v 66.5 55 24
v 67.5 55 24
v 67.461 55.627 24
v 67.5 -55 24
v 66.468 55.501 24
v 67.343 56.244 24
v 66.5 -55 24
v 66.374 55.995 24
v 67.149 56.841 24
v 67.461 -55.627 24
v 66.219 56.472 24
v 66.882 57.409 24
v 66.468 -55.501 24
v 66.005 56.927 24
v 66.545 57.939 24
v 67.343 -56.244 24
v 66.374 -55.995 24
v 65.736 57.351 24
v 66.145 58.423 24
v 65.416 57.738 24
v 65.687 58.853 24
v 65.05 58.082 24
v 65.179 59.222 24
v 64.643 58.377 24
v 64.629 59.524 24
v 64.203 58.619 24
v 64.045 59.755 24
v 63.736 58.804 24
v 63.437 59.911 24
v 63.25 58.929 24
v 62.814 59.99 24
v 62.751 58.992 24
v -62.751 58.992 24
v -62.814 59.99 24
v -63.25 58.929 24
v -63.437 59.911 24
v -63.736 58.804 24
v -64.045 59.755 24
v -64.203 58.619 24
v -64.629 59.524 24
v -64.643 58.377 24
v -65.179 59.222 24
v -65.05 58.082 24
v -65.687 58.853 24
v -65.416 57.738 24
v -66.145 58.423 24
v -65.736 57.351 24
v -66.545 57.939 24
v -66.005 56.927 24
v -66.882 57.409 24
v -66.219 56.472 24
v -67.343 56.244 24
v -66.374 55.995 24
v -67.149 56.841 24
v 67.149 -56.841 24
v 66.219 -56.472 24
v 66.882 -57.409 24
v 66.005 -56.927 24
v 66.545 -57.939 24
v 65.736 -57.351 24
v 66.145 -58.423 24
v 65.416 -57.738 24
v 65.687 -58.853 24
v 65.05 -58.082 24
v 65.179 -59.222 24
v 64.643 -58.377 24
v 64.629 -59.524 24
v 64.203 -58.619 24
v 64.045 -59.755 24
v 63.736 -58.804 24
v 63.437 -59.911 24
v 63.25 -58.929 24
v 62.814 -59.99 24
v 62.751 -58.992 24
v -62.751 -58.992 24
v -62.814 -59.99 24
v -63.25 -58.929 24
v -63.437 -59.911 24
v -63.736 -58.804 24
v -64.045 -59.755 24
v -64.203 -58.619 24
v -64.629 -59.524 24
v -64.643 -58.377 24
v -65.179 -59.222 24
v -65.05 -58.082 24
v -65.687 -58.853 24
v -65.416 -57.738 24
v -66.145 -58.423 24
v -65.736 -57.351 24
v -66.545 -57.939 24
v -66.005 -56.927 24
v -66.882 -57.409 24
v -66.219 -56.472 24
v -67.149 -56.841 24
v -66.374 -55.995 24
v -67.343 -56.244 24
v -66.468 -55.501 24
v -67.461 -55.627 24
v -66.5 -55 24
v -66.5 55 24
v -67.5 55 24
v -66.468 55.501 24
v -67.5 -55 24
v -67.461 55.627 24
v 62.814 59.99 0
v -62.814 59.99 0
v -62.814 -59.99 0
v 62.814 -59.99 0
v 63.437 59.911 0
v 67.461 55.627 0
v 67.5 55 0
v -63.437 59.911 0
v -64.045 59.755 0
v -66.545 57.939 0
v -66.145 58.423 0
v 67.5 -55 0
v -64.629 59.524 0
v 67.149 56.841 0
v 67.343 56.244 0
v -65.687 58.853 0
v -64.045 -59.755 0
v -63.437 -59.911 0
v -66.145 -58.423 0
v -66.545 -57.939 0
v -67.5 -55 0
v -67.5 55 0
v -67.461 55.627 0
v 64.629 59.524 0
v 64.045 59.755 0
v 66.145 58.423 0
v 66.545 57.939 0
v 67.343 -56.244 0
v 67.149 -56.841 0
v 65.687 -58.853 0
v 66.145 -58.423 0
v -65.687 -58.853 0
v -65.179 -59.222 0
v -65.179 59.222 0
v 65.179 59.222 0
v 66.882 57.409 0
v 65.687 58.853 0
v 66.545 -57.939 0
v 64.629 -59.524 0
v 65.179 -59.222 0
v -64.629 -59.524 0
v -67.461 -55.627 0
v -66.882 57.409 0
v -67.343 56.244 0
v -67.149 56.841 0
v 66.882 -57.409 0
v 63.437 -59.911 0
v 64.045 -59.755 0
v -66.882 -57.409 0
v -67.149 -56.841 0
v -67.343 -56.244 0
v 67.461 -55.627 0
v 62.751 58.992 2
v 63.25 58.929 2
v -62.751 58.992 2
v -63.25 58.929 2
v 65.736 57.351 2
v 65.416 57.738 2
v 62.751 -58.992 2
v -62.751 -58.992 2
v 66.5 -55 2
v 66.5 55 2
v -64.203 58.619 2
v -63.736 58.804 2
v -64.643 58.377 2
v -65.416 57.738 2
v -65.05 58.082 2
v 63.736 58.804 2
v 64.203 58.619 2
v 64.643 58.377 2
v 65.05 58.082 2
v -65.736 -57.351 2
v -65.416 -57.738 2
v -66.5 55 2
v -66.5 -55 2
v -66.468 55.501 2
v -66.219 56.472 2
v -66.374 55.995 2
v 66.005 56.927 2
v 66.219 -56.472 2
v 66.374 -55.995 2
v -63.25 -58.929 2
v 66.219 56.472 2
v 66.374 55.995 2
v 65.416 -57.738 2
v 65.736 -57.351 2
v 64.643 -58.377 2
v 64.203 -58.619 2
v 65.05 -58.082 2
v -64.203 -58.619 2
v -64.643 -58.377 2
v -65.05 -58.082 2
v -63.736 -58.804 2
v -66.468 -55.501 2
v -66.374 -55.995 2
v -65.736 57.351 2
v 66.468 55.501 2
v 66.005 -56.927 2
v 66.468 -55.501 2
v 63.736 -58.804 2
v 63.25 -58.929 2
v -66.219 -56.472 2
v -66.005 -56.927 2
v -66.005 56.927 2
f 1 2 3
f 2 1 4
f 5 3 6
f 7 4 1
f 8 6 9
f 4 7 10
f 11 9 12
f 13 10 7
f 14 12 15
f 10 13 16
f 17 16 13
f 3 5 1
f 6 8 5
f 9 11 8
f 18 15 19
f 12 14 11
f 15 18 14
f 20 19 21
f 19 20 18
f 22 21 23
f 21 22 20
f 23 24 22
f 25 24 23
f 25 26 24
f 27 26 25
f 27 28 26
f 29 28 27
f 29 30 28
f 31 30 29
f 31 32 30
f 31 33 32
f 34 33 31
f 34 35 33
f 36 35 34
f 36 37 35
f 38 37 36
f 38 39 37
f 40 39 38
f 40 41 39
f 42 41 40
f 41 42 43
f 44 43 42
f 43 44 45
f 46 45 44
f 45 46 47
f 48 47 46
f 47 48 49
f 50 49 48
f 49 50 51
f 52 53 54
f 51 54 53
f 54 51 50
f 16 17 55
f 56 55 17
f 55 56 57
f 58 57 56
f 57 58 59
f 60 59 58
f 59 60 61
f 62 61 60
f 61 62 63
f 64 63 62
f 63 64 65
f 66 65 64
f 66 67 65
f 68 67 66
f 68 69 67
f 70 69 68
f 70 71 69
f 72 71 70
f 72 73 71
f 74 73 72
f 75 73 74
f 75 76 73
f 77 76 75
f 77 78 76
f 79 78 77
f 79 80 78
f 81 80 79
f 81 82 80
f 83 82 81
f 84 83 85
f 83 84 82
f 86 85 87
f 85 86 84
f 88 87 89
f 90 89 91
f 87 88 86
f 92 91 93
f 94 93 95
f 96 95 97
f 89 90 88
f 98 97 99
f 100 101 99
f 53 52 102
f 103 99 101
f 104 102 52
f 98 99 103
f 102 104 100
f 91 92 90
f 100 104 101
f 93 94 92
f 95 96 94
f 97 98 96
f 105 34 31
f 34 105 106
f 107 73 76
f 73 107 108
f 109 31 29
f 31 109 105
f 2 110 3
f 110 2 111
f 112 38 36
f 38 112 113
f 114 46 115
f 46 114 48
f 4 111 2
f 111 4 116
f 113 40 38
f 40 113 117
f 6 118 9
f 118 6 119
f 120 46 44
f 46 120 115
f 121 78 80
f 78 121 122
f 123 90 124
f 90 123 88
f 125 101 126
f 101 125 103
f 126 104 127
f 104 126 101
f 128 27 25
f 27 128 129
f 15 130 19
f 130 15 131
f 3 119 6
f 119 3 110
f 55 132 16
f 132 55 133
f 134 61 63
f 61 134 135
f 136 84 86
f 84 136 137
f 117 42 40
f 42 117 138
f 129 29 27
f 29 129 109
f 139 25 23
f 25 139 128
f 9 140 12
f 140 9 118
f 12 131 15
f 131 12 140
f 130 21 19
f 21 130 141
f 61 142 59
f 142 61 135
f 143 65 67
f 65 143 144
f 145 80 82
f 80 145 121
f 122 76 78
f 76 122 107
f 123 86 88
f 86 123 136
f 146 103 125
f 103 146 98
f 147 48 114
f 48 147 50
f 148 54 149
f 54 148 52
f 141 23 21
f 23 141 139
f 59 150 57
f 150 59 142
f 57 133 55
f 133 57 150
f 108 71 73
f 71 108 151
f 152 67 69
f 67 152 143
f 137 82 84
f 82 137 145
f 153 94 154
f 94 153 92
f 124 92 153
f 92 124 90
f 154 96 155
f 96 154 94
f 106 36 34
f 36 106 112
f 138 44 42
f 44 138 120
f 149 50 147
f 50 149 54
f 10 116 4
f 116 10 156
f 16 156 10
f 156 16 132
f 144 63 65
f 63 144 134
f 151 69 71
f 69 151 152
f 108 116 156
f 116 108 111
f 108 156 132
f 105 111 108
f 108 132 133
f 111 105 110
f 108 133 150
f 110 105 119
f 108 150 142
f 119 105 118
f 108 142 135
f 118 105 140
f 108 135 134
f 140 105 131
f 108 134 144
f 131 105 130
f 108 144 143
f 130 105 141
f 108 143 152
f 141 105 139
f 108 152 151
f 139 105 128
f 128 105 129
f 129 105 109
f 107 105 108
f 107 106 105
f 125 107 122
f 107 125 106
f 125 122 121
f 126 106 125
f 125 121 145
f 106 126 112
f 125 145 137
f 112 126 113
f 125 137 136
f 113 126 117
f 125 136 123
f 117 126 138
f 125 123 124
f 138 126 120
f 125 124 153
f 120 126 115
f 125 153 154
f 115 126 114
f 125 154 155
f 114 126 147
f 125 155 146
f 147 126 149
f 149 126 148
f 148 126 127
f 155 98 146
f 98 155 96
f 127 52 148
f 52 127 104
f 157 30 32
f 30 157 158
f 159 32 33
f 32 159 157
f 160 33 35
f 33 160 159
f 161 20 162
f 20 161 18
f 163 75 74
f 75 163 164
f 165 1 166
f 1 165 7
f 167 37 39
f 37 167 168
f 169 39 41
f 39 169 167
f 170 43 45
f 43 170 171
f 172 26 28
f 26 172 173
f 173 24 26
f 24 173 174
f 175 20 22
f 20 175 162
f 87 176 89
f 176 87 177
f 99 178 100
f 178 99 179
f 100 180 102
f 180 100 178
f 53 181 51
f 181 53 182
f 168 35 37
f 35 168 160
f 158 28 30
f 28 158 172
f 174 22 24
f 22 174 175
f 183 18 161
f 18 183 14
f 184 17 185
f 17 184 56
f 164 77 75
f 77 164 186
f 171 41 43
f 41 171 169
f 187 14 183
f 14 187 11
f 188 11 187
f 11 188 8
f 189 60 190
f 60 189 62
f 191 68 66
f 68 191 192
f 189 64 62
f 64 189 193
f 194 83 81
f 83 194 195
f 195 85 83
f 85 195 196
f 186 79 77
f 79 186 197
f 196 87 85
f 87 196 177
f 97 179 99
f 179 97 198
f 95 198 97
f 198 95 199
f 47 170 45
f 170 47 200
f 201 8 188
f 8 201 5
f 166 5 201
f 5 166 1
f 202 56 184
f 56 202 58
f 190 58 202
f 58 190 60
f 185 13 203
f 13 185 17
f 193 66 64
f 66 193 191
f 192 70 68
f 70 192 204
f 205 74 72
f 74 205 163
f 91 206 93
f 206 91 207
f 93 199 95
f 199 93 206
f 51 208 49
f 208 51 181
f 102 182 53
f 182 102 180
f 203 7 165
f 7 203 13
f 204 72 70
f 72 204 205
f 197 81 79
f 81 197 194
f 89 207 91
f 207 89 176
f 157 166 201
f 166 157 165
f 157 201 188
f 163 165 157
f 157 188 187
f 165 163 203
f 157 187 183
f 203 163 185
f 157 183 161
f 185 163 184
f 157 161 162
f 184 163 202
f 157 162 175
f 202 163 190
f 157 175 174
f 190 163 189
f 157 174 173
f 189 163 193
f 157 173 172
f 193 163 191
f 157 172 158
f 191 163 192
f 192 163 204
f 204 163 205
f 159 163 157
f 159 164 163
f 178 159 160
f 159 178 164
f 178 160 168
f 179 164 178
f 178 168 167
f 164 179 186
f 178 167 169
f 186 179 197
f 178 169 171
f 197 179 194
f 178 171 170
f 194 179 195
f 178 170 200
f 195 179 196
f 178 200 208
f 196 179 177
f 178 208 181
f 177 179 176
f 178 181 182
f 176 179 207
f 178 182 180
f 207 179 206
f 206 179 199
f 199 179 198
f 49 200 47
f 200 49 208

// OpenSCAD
$fn = 50;


difference() {
	union() {
		hull() {
			translate(v = [-62.5000000000, 55.0000000000, 0]) {
				cylinder(h = 24, r = 5);
			}
			translate(v = [62.5000000000, 55.0000000000, 0]) {
				cylinder(h = 24, r = 5);
			}
			translate(v = [-62.5000000000, -55.0000000000, 0]) {
				cylinder(h = 24, r = 5);
			}
			translate(v = [62.5000000000, -55.0000000000, 0]) {
				cylinder(h = 24, r = 5);
			}
		}
	}
	union() {
		translate(v = [0, 0, 2]) {
			hull() {
				translate(v = [-62.5000000000, 55.0000000000, 0]) {
					cylinder(h = 22, r = 4);
				}
				translate(v = [62.5000000000, 55.0000000000, 0]) {
					cylinder(h = 22, r = 4);
				}
				translate(v = [-62.5000000000, -55.0000000000, 0]) {
					cylinder(h = 22, r = 4);
				}
				translate(v = [62.5000000000, -55.0000000000, 0]) {
					cylinder(h = 22, r = 4);
				}
			}
		}
	}
}
